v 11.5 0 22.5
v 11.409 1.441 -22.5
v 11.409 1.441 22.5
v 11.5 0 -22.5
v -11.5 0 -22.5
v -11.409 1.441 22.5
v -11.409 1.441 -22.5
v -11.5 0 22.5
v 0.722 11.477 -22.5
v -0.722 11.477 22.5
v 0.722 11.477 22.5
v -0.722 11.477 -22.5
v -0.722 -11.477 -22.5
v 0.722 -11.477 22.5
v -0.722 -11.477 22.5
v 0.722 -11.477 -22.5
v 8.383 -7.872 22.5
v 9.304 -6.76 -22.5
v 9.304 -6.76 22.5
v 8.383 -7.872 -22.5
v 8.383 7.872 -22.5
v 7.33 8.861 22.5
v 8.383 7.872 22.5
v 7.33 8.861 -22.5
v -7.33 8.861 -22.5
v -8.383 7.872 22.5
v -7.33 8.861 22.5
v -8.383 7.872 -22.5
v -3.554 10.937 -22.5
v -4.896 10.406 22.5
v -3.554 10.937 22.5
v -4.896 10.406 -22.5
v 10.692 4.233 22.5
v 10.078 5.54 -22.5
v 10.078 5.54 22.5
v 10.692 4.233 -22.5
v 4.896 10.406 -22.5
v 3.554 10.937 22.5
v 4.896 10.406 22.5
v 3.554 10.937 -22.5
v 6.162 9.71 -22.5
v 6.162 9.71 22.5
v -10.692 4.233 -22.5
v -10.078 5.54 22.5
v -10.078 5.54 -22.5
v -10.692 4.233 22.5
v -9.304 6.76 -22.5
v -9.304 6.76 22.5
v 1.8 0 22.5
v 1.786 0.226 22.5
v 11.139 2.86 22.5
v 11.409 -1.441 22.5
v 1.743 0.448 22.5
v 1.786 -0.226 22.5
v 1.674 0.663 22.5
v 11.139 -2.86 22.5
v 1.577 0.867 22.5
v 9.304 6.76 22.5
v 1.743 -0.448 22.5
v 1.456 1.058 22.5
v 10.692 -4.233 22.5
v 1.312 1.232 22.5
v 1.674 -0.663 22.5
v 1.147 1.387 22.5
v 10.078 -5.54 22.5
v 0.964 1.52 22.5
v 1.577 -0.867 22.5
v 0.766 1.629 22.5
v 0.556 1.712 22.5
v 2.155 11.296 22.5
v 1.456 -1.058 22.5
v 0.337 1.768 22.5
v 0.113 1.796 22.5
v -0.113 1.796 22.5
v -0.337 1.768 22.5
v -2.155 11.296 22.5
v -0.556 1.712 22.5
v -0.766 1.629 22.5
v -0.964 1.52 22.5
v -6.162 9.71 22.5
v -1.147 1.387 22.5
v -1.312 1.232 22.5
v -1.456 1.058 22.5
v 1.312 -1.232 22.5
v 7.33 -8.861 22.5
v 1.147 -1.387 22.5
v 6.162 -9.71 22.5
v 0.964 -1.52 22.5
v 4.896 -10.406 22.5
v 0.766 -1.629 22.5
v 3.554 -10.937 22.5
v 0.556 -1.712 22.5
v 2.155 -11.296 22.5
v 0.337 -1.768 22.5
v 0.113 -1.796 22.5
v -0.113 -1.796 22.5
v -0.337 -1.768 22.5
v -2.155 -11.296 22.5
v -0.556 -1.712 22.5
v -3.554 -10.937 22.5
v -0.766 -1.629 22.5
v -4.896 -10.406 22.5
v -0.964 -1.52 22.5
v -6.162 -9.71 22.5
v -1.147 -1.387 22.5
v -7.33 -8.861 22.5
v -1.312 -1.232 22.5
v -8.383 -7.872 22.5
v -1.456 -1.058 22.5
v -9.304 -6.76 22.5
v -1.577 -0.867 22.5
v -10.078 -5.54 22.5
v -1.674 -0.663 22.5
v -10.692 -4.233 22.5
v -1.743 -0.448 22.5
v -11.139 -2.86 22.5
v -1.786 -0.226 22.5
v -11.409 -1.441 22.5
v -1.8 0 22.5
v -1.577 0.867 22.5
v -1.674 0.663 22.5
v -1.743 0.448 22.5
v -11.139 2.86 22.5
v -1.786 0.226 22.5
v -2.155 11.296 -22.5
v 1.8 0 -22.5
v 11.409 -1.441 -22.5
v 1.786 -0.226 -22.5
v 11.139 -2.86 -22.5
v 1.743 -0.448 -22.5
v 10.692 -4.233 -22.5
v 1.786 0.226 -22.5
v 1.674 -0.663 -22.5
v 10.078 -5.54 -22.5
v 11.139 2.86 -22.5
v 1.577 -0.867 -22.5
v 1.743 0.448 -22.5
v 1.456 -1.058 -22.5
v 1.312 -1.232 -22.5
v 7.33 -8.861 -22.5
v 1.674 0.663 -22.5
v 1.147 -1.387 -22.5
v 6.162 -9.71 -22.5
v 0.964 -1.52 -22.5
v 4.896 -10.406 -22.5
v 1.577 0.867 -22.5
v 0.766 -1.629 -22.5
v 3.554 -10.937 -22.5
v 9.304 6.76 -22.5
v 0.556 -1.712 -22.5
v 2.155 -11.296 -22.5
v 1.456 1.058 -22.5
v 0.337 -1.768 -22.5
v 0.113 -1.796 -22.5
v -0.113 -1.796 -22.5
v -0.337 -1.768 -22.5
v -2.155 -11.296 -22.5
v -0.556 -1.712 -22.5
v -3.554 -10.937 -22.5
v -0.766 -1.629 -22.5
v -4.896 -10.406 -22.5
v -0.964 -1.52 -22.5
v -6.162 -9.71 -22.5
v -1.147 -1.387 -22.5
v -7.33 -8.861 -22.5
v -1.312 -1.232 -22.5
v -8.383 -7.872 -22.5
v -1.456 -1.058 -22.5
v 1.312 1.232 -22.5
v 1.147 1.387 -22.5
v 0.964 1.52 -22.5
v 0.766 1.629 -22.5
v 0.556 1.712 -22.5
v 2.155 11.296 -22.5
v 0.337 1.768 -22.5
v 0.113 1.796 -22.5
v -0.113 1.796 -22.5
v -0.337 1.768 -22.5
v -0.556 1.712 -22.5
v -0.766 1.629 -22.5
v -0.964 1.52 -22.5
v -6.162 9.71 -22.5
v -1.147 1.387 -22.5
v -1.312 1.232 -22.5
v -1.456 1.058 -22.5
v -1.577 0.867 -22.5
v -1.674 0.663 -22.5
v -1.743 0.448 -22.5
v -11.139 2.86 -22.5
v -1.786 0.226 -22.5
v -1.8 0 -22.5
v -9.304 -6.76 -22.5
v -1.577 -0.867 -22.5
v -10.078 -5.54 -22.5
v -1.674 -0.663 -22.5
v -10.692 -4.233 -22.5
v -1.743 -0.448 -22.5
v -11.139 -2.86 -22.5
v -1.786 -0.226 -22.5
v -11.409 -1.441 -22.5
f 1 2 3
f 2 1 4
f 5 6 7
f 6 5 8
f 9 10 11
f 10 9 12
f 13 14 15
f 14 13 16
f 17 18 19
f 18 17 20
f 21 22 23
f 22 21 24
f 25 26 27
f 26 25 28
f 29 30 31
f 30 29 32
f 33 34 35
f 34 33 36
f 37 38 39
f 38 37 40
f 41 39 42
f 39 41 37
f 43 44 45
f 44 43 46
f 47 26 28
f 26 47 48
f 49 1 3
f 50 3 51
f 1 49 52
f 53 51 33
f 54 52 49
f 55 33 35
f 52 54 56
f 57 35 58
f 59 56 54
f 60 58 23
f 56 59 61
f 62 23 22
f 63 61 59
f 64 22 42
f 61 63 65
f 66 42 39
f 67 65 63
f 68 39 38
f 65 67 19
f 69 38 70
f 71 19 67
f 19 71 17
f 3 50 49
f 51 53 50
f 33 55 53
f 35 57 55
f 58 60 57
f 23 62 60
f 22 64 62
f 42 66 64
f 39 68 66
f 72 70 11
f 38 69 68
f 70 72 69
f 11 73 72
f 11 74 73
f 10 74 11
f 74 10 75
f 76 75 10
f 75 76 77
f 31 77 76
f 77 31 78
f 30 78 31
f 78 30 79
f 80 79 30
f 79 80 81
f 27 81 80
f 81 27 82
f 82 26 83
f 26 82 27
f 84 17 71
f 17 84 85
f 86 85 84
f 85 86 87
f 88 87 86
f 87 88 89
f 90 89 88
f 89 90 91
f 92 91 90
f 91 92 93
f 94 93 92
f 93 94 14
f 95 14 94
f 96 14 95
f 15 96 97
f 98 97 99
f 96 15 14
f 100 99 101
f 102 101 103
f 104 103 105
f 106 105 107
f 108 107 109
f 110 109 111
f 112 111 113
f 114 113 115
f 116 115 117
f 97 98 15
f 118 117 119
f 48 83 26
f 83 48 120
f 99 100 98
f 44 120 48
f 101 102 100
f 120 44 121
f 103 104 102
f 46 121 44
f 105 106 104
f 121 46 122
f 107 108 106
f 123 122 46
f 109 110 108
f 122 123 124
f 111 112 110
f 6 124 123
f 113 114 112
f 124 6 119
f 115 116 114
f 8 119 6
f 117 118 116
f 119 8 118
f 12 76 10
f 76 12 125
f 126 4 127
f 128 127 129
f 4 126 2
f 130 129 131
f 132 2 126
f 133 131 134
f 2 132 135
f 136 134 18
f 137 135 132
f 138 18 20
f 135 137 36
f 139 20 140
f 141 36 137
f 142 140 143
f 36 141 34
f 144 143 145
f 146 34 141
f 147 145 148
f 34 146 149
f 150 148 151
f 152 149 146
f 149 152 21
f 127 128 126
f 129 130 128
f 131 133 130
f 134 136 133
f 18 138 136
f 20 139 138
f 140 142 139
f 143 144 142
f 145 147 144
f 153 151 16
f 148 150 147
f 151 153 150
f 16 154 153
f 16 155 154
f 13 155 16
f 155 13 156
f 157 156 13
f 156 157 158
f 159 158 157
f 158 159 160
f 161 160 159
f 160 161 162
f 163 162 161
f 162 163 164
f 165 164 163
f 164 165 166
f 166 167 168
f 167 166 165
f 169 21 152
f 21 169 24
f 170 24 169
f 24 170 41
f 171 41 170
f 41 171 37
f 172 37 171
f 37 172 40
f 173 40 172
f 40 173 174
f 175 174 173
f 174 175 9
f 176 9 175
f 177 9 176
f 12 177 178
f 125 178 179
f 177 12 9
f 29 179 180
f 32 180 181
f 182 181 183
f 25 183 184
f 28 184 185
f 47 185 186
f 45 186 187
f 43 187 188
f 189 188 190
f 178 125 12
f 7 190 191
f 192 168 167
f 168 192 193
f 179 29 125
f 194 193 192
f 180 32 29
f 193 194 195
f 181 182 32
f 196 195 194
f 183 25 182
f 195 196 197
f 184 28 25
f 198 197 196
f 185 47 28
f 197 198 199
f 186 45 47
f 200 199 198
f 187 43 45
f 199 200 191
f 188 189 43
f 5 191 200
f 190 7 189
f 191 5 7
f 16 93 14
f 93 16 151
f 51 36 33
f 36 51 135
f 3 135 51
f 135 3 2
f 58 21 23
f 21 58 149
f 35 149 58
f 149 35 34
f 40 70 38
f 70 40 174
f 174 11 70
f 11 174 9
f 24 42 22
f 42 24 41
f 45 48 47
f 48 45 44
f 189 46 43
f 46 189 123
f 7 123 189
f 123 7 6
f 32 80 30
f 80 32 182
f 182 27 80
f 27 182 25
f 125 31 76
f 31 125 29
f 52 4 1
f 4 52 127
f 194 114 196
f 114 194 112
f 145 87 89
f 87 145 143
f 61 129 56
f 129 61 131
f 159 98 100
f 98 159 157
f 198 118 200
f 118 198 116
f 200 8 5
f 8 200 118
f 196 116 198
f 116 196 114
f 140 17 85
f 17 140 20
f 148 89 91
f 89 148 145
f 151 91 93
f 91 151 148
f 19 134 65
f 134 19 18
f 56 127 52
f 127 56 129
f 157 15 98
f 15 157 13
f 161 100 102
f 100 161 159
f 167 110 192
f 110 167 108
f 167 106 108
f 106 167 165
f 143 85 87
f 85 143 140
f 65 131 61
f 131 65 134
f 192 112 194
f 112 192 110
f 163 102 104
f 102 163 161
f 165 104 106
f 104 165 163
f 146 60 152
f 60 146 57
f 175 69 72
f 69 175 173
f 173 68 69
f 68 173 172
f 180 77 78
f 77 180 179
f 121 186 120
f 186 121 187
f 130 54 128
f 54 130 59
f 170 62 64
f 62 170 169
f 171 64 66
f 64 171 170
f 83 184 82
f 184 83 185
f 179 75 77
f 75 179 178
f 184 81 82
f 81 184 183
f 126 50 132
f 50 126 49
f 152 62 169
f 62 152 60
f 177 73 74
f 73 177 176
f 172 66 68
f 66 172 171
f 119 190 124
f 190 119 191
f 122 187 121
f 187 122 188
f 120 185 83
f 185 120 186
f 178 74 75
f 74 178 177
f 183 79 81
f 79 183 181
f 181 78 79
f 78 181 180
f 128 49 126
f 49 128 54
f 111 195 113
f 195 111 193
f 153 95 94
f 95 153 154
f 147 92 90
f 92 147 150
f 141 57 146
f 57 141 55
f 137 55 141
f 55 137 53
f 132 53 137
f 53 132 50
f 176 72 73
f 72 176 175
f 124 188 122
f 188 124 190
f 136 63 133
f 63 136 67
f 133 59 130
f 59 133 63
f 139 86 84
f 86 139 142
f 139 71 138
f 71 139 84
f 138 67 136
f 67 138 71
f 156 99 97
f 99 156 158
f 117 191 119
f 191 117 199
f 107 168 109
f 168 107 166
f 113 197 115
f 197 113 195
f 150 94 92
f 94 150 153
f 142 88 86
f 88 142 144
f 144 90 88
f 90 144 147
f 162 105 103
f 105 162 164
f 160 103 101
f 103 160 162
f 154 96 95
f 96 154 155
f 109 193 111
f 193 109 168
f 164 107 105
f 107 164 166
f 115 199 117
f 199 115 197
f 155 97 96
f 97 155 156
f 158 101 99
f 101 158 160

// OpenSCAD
$fn = 50;


difference() {
	union() {
		translate(v = [0, 0, -22.5000000000]) {
			cylinder(h = 45, r = 11.5000000000);
		}
	}
	union() {
		translate(v = [0, 0, -100.0000000000]) {
			cylinder(h = 200, r = 1.8000000000);
		}
	}
}
